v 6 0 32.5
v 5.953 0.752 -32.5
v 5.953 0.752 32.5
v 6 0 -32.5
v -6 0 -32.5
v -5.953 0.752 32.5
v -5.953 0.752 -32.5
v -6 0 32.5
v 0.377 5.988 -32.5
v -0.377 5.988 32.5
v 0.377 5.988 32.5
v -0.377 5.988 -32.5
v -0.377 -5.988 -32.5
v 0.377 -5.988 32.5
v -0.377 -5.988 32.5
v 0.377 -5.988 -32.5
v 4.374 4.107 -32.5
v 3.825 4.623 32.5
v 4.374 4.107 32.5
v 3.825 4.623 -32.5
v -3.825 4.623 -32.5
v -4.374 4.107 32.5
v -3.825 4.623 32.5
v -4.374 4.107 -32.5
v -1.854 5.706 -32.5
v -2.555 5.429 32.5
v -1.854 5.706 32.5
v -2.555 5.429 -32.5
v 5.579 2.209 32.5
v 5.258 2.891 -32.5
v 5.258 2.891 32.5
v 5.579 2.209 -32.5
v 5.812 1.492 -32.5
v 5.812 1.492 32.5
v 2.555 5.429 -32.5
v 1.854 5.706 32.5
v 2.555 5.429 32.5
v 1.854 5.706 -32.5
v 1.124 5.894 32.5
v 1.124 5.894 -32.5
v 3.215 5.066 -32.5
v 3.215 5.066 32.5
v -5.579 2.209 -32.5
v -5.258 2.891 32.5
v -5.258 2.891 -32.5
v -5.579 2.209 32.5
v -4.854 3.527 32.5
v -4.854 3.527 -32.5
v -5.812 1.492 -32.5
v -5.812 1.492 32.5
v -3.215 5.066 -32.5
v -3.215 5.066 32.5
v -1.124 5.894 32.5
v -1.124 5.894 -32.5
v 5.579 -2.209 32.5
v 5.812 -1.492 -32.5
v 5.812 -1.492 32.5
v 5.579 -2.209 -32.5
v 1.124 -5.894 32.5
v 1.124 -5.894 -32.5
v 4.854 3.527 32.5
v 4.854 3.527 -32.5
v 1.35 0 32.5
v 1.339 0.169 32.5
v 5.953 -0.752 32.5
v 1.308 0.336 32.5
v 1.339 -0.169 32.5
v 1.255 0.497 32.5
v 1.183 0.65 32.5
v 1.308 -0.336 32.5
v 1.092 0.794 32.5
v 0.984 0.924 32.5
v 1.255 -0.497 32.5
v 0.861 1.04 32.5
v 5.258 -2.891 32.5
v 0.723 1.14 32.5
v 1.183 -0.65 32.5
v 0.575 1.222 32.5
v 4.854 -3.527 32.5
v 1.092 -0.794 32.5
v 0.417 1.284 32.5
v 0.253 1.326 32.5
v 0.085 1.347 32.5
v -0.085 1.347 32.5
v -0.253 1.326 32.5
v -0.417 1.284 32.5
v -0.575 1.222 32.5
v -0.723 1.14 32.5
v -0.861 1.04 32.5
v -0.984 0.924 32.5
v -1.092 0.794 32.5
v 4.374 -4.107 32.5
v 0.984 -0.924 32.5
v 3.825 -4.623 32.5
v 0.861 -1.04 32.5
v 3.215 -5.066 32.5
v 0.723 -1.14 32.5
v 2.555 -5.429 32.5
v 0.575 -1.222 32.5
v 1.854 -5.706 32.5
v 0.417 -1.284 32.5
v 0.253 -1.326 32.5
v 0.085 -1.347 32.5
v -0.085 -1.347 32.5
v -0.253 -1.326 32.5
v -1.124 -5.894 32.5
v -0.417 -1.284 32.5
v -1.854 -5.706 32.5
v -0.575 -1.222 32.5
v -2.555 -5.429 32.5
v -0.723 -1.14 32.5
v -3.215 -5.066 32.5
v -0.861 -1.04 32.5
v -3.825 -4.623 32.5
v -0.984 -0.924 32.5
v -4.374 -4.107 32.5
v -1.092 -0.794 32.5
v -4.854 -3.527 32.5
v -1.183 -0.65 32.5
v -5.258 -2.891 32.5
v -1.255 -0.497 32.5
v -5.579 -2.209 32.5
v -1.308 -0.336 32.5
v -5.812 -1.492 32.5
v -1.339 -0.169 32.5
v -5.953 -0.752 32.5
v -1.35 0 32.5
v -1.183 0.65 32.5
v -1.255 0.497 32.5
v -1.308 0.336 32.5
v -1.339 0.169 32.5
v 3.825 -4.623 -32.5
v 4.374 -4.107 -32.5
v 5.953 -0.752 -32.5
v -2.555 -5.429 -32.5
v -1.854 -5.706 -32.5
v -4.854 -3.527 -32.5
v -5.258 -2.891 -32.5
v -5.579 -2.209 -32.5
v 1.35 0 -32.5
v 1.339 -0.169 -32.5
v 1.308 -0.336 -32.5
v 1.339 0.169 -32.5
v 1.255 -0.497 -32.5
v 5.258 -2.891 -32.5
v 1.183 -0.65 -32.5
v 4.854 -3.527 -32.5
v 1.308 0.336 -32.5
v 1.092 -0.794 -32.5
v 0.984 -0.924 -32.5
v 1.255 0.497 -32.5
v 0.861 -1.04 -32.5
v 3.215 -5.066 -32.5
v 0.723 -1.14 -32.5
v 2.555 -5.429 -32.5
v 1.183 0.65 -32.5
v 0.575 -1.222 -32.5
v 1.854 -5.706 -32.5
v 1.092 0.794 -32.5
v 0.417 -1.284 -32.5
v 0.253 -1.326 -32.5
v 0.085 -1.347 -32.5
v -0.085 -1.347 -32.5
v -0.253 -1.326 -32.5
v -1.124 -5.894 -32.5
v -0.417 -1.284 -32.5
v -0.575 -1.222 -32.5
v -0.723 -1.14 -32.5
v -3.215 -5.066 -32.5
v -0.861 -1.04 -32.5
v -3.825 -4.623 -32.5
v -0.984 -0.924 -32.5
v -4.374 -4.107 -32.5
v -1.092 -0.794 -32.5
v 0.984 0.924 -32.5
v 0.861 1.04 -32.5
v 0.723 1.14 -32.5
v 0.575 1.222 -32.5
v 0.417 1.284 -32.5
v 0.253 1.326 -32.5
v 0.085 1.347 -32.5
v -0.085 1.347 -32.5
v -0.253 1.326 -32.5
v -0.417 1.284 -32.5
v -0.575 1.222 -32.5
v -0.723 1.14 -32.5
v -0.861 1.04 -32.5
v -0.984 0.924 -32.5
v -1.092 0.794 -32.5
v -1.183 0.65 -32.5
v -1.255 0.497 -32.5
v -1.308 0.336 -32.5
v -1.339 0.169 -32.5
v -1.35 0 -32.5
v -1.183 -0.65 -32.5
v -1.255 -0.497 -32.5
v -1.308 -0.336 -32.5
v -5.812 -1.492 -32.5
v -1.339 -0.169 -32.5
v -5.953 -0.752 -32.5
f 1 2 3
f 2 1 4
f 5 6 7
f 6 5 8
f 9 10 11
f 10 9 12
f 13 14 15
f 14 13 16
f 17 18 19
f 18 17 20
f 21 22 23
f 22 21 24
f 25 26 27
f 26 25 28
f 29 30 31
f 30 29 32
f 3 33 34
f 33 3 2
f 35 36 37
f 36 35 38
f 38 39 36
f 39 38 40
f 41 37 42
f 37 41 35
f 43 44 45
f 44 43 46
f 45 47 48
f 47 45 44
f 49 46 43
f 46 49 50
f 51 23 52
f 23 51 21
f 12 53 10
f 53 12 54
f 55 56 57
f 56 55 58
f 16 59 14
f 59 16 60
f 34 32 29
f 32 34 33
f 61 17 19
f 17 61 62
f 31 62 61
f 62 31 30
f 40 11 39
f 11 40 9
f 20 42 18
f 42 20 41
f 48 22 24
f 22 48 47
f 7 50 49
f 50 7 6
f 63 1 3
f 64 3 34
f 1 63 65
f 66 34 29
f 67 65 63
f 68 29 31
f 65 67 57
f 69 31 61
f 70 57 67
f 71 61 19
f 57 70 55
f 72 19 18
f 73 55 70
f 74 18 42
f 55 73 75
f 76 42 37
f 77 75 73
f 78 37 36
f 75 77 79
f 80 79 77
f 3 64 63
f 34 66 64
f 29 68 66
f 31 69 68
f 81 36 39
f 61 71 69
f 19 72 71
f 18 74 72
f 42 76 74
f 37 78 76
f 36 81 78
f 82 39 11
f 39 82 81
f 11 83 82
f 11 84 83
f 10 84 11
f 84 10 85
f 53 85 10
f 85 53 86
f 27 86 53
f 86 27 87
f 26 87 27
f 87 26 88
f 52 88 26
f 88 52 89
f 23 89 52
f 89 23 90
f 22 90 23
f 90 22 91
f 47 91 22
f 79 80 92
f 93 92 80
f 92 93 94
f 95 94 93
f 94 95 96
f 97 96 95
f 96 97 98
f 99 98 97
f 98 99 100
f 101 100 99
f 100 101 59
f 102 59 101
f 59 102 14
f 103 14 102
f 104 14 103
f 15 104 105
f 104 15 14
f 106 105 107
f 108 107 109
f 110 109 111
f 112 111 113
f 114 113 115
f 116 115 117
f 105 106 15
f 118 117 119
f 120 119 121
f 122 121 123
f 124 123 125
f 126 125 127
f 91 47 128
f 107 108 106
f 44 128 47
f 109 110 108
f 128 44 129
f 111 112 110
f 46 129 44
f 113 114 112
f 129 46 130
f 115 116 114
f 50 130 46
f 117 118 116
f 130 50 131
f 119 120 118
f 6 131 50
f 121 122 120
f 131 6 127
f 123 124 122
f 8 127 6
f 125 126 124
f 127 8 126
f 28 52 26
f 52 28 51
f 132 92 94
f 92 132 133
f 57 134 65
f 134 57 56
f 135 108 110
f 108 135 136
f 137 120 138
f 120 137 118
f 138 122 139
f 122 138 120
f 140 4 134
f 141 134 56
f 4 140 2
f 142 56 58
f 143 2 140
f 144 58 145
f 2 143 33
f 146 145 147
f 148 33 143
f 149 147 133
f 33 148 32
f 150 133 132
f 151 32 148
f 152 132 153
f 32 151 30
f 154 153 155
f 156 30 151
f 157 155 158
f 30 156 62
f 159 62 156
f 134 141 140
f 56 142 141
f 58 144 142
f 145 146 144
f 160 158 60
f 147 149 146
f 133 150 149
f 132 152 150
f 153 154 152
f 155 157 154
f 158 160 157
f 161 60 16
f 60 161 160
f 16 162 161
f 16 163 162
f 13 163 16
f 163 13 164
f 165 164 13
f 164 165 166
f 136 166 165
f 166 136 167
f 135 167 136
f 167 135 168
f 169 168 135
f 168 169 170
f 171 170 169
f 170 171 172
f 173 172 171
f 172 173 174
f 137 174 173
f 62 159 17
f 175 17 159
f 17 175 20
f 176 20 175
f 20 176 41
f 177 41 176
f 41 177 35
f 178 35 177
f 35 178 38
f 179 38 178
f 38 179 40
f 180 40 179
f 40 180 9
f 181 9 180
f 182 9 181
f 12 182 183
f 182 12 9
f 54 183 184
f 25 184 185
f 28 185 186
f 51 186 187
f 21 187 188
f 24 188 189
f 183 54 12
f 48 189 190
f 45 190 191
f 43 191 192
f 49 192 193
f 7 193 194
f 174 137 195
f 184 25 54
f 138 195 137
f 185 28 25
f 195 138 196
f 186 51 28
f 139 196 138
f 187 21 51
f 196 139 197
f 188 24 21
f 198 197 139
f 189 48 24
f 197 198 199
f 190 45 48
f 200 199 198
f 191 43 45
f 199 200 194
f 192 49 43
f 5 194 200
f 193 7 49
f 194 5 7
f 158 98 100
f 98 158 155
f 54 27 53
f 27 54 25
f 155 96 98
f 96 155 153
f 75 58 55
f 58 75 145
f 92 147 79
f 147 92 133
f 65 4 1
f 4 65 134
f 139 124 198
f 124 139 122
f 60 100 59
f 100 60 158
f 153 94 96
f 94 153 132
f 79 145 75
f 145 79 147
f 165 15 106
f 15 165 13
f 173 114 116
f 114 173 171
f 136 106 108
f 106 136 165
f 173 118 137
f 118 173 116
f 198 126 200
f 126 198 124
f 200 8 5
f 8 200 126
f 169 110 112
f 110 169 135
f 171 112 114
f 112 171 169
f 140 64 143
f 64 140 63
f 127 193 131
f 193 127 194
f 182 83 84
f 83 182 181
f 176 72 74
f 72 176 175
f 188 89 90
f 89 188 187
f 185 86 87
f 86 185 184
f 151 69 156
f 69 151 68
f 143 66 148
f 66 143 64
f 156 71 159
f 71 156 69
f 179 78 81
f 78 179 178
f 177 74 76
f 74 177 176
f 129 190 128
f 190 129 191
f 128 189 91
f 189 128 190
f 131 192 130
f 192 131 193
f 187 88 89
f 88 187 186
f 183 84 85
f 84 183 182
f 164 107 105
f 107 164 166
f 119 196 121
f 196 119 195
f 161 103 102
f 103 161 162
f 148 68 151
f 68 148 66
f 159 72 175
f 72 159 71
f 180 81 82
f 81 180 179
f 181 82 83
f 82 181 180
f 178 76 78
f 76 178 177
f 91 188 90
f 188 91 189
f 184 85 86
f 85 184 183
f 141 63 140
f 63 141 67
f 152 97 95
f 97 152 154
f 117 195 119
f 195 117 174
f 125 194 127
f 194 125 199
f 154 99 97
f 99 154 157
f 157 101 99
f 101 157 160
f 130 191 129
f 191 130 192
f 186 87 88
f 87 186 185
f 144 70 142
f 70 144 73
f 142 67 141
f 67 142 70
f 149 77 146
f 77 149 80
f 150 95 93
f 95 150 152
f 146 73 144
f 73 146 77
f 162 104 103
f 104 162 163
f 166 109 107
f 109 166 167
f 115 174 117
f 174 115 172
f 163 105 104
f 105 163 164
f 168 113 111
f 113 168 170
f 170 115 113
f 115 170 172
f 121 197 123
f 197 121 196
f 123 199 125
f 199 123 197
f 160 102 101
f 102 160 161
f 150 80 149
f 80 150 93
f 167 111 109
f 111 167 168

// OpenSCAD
$fn = 50;


difference() {
	union() {
		translate(v = [0, 0, -32.5000000000]) {
			cylinder(h = 65, r = 6.0000000000);
		}
	}
	union() {
		translate(v = [0, 0, -100.0000000000]) {
			cylinder(h = 200, r = 1.3500000000);
		}
	}
}
